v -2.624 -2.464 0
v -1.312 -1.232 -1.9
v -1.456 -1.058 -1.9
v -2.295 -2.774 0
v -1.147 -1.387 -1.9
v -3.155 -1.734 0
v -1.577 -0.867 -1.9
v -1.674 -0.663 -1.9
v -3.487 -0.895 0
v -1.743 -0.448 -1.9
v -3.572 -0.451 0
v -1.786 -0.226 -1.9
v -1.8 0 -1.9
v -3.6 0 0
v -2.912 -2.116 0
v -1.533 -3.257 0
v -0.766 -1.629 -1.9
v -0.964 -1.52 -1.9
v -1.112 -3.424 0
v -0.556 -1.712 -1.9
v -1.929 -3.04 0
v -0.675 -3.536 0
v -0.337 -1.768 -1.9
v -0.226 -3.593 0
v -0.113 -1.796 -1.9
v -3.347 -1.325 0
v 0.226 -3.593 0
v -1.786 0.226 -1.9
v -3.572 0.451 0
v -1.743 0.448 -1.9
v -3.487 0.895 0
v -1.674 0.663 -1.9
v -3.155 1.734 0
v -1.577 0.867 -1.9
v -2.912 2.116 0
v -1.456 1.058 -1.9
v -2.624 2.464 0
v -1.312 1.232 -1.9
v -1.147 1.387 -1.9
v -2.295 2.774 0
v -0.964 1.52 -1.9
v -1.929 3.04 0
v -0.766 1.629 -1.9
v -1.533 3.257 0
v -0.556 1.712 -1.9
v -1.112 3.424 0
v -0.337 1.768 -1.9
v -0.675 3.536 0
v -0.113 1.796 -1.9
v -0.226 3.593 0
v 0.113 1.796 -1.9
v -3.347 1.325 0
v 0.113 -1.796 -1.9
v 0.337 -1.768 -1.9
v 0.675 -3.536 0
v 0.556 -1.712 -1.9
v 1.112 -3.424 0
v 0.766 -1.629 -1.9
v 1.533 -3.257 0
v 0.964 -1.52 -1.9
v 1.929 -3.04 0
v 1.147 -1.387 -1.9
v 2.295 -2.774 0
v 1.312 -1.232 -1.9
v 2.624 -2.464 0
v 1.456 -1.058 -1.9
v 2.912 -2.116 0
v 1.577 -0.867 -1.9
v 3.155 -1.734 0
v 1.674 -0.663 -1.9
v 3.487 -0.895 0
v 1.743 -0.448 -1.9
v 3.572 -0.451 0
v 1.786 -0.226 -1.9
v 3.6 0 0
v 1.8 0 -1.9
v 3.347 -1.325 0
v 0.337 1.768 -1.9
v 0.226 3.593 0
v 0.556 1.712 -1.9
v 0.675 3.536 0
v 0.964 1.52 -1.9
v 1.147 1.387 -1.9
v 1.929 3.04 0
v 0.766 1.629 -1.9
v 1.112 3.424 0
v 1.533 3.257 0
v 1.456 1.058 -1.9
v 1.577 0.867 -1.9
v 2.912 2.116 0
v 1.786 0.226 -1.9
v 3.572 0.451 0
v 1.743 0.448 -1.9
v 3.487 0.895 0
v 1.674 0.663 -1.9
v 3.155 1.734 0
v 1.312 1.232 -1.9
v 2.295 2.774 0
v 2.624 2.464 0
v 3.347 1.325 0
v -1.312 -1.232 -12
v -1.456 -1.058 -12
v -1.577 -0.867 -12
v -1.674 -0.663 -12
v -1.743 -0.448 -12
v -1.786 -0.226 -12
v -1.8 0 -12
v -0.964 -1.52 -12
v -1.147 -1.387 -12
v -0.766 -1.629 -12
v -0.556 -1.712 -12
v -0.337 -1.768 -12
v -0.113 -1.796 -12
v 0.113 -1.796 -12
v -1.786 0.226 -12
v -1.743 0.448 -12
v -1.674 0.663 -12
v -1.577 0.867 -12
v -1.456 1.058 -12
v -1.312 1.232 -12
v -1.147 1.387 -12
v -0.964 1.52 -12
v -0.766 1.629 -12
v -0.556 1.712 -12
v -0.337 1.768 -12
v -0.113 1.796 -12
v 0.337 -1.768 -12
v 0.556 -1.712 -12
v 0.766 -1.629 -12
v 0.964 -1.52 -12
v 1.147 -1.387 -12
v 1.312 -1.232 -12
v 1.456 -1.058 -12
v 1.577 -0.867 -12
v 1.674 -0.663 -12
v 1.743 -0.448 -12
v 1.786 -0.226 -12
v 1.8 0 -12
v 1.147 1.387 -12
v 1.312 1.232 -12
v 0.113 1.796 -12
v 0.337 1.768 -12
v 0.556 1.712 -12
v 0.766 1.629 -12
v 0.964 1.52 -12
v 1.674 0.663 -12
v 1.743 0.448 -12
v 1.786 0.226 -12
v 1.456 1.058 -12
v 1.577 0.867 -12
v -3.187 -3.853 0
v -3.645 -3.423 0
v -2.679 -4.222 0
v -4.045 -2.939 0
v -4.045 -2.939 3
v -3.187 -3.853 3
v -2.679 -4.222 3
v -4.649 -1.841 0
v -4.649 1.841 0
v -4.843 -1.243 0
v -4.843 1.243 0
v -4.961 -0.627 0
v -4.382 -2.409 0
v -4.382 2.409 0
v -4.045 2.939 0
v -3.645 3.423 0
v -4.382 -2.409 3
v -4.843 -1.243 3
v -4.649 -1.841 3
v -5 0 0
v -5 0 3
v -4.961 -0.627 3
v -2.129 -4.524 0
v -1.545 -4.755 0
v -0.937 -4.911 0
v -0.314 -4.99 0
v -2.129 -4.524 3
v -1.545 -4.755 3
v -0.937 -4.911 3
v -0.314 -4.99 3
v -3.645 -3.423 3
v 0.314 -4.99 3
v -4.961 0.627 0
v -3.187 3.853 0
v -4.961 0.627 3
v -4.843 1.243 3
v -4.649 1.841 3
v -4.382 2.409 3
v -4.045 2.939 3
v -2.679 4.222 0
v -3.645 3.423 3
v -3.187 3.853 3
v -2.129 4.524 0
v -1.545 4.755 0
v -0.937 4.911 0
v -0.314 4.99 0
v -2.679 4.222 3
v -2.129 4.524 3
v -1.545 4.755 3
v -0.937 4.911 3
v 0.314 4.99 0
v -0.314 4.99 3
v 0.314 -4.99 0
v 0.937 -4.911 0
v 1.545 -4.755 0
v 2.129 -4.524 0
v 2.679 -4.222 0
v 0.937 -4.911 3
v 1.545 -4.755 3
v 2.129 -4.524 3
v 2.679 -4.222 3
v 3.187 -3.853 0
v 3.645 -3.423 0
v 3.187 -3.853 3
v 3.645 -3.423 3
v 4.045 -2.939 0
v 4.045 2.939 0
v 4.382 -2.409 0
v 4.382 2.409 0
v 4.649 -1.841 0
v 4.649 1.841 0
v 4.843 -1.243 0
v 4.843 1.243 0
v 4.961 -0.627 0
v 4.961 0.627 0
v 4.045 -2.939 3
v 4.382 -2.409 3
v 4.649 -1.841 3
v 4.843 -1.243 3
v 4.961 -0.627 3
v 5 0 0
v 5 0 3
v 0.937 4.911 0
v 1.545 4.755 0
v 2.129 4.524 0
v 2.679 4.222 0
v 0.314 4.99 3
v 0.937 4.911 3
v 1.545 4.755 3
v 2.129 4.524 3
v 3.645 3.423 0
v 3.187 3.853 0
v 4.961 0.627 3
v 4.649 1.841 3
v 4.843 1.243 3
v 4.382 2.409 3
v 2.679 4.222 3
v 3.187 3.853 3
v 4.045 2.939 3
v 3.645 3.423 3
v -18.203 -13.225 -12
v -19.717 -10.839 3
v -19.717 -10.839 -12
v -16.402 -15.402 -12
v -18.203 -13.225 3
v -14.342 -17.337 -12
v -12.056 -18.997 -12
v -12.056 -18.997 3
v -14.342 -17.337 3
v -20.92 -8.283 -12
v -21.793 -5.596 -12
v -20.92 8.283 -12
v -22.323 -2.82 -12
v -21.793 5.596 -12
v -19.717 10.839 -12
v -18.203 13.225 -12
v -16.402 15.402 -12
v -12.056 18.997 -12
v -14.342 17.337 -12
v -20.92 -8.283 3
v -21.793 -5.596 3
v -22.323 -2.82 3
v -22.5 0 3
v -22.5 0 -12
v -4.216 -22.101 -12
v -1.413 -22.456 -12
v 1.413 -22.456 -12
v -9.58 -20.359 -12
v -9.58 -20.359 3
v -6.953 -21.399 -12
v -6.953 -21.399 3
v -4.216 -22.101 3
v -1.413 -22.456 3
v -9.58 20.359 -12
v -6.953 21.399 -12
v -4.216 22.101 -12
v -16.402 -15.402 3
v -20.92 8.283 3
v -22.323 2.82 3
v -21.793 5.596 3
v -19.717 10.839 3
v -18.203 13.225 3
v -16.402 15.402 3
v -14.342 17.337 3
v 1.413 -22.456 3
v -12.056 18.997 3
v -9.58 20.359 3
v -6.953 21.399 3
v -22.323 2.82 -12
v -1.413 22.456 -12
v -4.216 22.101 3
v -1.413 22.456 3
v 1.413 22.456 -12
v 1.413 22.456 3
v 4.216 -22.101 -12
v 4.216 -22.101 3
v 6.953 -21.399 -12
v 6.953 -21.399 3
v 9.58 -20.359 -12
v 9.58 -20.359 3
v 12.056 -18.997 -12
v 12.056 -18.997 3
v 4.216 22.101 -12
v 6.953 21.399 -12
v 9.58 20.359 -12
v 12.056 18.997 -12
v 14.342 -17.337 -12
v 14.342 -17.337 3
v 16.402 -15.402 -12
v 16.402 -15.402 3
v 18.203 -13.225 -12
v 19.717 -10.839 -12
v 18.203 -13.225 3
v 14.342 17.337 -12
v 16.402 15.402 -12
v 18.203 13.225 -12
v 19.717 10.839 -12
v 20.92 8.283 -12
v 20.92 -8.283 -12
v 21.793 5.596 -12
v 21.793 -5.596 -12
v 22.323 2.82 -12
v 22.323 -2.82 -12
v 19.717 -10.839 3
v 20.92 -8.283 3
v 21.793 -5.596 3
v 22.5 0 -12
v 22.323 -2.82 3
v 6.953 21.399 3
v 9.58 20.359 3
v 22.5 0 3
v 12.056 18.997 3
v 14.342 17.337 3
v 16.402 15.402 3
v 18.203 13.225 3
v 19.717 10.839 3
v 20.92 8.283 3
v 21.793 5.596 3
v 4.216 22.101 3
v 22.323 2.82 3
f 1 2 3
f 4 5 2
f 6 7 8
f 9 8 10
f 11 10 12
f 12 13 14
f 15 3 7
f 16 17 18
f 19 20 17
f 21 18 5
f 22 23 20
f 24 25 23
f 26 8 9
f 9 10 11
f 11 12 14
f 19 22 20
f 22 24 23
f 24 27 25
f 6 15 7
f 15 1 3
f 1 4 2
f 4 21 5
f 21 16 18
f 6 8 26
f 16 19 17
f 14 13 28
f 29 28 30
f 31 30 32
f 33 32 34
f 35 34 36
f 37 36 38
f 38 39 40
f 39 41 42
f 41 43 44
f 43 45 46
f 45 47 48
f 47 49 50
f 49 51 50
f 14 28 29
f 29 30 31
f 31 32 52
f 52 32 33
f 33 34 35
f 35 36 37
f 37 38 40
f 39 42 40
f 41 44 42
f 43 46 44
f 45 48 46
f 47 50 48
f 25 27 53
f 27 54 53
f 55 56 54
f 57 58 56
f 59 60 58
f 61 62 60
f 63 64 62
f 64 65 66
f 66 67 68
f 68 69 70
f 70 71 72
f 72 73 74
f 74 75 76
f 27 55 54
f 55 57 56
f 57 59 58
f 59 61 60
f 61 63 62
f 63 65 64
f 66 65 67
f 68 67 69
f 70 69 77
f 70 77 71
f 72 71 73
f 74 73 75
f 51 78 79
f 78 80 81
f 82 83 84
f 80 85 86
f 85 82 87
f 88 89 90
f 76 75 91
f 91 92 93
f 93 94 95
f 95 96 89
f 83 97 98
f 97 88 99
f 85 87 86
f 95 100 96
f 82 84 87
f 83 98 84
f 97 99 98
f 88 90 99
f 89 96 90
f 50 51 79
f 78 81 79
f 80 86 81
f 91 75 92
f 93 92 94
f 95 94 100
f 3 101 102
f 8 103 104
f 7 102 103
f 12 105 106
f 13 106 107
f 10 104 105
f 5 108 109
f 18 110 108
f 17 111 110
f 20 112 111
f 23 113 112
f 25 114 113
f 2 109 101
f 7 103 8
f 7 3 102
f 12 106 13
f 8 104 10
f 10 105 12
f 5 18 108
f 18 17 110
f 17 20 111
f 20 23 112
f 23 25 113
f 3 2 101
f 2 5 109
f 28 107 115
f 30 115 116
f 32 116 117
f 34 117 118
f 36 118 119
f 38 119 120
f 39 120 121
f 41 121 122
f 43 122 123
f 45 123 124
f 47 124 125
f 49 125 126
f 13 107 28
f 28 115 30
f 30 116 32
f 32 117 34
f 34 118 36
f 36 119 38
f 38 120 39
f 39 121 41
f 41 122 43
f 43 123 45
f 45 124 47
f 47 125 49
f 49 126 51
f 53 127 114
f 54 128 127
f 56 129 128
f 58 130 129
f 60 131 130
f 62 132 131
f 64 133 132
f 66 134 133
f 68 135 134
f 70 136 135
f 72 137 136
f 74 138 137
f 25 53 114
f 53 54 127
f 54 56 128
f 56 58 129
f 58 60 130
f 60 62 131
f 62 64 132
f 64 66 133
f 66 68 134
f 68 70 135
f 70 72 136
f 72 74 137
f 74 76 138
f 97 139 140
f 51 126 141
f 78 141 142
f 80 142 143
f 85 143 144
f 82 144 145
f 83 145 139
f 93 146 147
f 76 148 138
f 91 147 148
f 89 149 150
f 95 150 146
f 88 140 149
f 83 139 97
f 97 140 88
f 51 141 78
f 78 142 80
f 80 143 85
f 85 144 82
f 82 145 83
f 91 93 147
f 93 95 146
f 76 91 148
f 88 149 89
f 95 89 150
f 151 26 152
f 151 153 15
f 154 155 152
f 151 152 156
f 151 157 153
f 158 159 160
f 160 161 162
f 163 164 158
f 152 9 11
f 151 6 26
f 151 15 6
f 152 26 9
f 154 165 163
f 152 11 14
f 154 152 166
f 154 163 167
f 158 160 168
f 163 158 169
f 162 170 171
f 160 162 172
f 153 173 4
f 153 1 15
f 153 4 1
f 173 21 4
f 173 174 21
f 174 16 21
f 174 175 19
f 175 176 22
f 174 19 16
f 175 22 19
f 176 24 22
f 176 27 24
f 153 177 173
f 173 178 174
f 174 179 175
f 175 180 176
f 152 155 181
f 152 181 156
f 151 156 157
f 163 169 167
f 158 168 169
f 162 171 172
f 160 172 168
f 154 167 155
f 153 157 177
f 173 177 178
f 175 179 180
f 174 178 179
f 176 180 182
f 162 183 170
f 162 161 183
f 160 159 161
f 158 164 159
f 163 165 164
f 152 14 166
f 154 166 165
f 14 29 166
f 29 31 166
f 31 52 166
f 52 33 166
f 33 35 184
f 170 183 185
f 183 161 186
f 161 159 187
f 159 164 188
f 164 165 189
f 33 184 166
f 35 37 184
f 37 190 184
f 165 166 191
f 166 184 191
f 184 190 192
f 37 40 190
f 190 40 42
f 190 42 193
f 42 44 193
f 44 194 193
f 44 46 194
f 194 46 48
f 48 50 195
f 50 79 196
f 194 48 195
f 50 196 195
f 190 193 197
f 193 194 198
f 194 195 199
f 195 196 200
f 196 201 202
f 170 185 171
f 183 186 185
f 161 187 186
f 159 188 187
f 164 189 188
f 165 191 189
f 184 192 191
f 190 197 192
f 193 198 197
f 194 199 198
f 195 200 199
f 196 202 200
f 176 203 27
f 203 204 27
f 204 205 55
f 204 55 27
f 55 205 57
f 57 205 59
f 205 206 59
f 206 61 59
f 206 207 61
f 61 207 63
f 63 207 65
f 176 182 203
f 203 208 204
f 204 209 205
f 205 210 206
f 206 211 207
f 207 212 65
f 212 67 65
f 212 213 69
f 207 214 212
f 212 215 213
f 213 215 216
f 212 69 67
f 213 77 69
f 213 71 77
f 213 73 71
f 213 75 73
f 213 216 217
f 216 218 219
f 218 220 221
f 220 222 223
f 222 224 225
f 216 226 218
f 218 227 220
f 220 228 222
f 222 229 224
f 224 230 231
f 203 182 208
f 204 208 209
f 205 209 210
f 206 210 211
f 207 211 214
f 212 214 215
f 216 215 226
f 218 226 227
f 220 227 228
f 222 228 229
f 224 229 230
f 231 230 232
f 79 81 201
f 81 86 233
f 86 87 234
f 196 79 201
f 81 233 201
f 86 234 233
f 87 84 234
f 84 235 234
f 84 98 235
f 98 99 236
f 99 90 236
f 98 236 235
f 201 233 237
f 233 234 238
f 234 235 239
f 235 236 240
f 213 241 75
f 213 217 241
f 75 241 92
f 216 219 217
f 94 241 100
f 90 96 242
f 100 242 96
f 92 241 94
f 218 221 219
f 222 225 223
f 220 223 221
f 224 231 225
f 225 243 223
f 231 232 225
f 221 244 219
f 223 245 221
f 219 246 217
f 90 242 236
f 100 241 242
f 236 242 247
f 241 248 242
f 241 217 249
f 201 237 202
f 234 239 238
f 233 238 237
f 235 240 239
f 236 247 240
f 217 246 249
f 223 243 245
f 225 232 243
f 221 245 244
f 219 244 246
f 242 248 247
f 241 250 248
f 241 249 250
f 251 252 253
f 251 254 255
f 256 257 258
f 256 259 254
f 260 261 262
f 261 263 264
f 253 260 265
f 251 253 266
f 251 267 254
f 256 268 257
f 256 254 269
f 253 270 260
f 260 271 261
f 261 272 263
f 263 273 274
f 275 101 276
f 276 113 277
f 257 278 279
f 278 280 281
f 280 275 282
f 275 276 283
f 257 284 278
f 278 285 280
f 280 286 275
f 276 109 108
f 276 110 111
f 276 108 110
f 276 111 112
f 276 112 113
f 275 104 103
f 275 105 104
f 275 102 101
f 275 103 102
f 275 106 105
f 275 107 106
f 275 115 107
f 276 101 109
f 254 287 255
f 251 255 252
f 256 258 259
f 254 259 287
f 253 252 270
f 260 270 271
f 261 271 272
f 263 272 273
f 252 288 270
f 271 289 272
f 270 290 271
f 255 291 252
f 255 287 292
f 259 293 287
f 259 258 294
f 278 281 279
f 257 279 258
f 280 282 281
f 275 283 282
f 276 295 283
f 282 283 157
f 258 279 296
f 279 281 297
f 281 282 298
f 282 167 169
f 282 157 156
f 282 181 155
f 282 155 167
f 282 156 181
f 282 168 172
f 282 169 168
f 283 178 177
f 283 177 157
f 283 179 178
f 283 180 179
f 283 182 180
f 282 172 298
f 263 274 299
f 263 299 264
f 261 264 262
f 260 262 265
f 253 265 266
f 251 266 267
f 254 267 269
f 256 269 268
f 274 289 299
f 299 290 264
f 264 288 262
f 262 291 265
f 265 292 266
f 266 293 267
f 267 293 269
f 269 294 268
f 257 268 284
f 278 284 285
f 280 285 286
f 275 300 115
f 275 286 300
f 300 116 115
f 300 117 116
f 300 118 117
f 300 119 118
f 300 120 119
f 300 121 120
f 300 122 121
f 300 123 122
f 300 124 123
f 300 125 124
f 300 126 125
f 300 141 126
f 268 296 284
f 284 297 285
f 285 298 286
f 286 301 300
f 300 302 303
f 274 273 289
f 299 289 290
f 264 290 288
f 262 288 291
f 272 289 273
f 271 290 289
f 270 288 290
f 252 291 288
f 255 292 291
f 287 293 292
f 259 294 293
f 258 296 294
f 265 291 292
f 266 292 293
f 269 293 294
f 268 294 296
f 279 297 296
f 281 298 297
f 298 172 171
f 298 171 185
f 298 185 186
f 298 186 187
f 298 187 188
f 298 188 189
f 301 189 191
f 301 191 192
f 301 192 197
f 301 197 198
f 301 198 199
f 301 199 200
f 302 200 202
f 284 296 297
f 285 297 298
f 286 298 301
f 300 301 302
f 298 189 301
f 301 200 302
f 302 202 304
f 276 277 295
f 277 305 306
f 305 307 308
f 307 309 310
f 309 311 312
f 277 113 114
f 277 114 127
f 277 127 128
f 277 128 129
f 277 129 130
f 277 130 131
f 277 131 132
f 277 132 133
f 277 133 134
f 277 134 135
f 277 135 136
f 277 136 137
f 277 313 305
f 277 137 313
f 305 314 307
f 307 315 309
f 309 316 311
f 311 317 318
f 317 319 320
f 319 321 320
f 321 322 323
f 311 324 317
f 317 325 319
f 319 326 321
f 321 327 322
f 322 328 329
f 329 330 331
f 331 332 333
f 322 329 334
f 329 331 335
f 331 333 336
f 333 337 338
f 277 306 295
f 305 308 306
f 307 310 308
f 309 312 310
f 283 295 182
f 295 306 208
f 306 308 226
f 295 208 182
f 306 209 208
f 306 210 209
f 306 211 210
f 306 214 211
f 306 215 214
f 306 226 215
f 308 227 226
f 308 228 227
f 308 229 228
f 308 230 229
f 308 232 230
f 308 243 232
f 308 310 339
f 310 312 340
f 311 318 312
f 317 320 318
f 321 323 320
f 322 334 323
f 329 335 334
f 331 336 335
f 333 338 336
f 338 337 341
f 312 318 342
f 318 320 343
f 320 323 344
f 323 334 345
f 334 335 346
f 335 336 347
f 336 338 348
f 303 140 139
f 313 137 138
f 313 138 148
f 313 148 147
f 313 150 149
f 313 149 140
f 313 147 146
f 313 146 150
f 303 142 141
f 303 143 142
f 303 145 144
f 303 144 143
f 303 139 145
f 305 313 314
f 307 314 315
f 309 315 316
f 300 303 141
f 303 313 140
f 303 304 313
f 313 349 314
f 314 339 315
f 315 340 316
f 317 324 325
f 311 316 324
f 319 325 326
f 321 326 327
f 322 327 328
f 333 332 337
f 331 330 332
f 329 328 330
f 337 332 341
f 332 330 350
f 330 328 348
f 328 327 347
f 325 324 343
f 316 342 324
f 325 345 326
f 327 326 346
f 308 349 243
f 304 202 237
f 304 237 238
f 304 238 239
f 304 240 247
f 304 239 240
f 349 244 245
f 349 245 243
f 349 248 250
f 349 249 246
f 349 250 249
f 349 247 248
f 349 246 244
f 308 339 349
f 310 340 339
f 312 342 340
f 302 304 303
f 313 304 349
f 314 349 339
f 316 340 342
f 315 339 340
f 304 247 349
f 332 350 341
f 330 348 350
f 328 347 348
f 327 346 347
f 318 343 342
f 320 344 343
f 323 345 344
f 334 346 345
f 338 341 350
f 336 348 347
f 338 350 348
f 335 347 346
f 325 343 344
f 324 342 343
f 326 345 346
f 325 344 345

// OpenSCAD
$fn = 50;


difference() {
	union() {
		translate(v = [0, 0, -12.0000000000]) {
			cylinder(h = 15, r = 22.5000000000);
		}
	}
	union() {
		translate(v = [0, 0, 0]) {
			rotate(a = [0, 0, 0]) {
				difference() {
					union() {
						translate(v = [0, 0, -15.0000000000]) {
							cylinder(h = 15, r = 1.5000000000);
						}
						translate(v = [0, 0, -1.9000000000]) {
							cylinder(h = 1.9000000000, r1 = 1.8000000000, r2 = 3.6000000000);
						}
						translate(v = [0, 0, -15.0000000000]) {
							cylinder(h = 15, r = 1.8000000000);
						}
						translate(v = [0, 0, -15.0000000000]) {
							cylinder(h = 15, r = 1.5000000000);
						}
					}
					union();
				}
			}
		}
		#cylinder(h = 3, r = 5.0000000000);
	}
}
